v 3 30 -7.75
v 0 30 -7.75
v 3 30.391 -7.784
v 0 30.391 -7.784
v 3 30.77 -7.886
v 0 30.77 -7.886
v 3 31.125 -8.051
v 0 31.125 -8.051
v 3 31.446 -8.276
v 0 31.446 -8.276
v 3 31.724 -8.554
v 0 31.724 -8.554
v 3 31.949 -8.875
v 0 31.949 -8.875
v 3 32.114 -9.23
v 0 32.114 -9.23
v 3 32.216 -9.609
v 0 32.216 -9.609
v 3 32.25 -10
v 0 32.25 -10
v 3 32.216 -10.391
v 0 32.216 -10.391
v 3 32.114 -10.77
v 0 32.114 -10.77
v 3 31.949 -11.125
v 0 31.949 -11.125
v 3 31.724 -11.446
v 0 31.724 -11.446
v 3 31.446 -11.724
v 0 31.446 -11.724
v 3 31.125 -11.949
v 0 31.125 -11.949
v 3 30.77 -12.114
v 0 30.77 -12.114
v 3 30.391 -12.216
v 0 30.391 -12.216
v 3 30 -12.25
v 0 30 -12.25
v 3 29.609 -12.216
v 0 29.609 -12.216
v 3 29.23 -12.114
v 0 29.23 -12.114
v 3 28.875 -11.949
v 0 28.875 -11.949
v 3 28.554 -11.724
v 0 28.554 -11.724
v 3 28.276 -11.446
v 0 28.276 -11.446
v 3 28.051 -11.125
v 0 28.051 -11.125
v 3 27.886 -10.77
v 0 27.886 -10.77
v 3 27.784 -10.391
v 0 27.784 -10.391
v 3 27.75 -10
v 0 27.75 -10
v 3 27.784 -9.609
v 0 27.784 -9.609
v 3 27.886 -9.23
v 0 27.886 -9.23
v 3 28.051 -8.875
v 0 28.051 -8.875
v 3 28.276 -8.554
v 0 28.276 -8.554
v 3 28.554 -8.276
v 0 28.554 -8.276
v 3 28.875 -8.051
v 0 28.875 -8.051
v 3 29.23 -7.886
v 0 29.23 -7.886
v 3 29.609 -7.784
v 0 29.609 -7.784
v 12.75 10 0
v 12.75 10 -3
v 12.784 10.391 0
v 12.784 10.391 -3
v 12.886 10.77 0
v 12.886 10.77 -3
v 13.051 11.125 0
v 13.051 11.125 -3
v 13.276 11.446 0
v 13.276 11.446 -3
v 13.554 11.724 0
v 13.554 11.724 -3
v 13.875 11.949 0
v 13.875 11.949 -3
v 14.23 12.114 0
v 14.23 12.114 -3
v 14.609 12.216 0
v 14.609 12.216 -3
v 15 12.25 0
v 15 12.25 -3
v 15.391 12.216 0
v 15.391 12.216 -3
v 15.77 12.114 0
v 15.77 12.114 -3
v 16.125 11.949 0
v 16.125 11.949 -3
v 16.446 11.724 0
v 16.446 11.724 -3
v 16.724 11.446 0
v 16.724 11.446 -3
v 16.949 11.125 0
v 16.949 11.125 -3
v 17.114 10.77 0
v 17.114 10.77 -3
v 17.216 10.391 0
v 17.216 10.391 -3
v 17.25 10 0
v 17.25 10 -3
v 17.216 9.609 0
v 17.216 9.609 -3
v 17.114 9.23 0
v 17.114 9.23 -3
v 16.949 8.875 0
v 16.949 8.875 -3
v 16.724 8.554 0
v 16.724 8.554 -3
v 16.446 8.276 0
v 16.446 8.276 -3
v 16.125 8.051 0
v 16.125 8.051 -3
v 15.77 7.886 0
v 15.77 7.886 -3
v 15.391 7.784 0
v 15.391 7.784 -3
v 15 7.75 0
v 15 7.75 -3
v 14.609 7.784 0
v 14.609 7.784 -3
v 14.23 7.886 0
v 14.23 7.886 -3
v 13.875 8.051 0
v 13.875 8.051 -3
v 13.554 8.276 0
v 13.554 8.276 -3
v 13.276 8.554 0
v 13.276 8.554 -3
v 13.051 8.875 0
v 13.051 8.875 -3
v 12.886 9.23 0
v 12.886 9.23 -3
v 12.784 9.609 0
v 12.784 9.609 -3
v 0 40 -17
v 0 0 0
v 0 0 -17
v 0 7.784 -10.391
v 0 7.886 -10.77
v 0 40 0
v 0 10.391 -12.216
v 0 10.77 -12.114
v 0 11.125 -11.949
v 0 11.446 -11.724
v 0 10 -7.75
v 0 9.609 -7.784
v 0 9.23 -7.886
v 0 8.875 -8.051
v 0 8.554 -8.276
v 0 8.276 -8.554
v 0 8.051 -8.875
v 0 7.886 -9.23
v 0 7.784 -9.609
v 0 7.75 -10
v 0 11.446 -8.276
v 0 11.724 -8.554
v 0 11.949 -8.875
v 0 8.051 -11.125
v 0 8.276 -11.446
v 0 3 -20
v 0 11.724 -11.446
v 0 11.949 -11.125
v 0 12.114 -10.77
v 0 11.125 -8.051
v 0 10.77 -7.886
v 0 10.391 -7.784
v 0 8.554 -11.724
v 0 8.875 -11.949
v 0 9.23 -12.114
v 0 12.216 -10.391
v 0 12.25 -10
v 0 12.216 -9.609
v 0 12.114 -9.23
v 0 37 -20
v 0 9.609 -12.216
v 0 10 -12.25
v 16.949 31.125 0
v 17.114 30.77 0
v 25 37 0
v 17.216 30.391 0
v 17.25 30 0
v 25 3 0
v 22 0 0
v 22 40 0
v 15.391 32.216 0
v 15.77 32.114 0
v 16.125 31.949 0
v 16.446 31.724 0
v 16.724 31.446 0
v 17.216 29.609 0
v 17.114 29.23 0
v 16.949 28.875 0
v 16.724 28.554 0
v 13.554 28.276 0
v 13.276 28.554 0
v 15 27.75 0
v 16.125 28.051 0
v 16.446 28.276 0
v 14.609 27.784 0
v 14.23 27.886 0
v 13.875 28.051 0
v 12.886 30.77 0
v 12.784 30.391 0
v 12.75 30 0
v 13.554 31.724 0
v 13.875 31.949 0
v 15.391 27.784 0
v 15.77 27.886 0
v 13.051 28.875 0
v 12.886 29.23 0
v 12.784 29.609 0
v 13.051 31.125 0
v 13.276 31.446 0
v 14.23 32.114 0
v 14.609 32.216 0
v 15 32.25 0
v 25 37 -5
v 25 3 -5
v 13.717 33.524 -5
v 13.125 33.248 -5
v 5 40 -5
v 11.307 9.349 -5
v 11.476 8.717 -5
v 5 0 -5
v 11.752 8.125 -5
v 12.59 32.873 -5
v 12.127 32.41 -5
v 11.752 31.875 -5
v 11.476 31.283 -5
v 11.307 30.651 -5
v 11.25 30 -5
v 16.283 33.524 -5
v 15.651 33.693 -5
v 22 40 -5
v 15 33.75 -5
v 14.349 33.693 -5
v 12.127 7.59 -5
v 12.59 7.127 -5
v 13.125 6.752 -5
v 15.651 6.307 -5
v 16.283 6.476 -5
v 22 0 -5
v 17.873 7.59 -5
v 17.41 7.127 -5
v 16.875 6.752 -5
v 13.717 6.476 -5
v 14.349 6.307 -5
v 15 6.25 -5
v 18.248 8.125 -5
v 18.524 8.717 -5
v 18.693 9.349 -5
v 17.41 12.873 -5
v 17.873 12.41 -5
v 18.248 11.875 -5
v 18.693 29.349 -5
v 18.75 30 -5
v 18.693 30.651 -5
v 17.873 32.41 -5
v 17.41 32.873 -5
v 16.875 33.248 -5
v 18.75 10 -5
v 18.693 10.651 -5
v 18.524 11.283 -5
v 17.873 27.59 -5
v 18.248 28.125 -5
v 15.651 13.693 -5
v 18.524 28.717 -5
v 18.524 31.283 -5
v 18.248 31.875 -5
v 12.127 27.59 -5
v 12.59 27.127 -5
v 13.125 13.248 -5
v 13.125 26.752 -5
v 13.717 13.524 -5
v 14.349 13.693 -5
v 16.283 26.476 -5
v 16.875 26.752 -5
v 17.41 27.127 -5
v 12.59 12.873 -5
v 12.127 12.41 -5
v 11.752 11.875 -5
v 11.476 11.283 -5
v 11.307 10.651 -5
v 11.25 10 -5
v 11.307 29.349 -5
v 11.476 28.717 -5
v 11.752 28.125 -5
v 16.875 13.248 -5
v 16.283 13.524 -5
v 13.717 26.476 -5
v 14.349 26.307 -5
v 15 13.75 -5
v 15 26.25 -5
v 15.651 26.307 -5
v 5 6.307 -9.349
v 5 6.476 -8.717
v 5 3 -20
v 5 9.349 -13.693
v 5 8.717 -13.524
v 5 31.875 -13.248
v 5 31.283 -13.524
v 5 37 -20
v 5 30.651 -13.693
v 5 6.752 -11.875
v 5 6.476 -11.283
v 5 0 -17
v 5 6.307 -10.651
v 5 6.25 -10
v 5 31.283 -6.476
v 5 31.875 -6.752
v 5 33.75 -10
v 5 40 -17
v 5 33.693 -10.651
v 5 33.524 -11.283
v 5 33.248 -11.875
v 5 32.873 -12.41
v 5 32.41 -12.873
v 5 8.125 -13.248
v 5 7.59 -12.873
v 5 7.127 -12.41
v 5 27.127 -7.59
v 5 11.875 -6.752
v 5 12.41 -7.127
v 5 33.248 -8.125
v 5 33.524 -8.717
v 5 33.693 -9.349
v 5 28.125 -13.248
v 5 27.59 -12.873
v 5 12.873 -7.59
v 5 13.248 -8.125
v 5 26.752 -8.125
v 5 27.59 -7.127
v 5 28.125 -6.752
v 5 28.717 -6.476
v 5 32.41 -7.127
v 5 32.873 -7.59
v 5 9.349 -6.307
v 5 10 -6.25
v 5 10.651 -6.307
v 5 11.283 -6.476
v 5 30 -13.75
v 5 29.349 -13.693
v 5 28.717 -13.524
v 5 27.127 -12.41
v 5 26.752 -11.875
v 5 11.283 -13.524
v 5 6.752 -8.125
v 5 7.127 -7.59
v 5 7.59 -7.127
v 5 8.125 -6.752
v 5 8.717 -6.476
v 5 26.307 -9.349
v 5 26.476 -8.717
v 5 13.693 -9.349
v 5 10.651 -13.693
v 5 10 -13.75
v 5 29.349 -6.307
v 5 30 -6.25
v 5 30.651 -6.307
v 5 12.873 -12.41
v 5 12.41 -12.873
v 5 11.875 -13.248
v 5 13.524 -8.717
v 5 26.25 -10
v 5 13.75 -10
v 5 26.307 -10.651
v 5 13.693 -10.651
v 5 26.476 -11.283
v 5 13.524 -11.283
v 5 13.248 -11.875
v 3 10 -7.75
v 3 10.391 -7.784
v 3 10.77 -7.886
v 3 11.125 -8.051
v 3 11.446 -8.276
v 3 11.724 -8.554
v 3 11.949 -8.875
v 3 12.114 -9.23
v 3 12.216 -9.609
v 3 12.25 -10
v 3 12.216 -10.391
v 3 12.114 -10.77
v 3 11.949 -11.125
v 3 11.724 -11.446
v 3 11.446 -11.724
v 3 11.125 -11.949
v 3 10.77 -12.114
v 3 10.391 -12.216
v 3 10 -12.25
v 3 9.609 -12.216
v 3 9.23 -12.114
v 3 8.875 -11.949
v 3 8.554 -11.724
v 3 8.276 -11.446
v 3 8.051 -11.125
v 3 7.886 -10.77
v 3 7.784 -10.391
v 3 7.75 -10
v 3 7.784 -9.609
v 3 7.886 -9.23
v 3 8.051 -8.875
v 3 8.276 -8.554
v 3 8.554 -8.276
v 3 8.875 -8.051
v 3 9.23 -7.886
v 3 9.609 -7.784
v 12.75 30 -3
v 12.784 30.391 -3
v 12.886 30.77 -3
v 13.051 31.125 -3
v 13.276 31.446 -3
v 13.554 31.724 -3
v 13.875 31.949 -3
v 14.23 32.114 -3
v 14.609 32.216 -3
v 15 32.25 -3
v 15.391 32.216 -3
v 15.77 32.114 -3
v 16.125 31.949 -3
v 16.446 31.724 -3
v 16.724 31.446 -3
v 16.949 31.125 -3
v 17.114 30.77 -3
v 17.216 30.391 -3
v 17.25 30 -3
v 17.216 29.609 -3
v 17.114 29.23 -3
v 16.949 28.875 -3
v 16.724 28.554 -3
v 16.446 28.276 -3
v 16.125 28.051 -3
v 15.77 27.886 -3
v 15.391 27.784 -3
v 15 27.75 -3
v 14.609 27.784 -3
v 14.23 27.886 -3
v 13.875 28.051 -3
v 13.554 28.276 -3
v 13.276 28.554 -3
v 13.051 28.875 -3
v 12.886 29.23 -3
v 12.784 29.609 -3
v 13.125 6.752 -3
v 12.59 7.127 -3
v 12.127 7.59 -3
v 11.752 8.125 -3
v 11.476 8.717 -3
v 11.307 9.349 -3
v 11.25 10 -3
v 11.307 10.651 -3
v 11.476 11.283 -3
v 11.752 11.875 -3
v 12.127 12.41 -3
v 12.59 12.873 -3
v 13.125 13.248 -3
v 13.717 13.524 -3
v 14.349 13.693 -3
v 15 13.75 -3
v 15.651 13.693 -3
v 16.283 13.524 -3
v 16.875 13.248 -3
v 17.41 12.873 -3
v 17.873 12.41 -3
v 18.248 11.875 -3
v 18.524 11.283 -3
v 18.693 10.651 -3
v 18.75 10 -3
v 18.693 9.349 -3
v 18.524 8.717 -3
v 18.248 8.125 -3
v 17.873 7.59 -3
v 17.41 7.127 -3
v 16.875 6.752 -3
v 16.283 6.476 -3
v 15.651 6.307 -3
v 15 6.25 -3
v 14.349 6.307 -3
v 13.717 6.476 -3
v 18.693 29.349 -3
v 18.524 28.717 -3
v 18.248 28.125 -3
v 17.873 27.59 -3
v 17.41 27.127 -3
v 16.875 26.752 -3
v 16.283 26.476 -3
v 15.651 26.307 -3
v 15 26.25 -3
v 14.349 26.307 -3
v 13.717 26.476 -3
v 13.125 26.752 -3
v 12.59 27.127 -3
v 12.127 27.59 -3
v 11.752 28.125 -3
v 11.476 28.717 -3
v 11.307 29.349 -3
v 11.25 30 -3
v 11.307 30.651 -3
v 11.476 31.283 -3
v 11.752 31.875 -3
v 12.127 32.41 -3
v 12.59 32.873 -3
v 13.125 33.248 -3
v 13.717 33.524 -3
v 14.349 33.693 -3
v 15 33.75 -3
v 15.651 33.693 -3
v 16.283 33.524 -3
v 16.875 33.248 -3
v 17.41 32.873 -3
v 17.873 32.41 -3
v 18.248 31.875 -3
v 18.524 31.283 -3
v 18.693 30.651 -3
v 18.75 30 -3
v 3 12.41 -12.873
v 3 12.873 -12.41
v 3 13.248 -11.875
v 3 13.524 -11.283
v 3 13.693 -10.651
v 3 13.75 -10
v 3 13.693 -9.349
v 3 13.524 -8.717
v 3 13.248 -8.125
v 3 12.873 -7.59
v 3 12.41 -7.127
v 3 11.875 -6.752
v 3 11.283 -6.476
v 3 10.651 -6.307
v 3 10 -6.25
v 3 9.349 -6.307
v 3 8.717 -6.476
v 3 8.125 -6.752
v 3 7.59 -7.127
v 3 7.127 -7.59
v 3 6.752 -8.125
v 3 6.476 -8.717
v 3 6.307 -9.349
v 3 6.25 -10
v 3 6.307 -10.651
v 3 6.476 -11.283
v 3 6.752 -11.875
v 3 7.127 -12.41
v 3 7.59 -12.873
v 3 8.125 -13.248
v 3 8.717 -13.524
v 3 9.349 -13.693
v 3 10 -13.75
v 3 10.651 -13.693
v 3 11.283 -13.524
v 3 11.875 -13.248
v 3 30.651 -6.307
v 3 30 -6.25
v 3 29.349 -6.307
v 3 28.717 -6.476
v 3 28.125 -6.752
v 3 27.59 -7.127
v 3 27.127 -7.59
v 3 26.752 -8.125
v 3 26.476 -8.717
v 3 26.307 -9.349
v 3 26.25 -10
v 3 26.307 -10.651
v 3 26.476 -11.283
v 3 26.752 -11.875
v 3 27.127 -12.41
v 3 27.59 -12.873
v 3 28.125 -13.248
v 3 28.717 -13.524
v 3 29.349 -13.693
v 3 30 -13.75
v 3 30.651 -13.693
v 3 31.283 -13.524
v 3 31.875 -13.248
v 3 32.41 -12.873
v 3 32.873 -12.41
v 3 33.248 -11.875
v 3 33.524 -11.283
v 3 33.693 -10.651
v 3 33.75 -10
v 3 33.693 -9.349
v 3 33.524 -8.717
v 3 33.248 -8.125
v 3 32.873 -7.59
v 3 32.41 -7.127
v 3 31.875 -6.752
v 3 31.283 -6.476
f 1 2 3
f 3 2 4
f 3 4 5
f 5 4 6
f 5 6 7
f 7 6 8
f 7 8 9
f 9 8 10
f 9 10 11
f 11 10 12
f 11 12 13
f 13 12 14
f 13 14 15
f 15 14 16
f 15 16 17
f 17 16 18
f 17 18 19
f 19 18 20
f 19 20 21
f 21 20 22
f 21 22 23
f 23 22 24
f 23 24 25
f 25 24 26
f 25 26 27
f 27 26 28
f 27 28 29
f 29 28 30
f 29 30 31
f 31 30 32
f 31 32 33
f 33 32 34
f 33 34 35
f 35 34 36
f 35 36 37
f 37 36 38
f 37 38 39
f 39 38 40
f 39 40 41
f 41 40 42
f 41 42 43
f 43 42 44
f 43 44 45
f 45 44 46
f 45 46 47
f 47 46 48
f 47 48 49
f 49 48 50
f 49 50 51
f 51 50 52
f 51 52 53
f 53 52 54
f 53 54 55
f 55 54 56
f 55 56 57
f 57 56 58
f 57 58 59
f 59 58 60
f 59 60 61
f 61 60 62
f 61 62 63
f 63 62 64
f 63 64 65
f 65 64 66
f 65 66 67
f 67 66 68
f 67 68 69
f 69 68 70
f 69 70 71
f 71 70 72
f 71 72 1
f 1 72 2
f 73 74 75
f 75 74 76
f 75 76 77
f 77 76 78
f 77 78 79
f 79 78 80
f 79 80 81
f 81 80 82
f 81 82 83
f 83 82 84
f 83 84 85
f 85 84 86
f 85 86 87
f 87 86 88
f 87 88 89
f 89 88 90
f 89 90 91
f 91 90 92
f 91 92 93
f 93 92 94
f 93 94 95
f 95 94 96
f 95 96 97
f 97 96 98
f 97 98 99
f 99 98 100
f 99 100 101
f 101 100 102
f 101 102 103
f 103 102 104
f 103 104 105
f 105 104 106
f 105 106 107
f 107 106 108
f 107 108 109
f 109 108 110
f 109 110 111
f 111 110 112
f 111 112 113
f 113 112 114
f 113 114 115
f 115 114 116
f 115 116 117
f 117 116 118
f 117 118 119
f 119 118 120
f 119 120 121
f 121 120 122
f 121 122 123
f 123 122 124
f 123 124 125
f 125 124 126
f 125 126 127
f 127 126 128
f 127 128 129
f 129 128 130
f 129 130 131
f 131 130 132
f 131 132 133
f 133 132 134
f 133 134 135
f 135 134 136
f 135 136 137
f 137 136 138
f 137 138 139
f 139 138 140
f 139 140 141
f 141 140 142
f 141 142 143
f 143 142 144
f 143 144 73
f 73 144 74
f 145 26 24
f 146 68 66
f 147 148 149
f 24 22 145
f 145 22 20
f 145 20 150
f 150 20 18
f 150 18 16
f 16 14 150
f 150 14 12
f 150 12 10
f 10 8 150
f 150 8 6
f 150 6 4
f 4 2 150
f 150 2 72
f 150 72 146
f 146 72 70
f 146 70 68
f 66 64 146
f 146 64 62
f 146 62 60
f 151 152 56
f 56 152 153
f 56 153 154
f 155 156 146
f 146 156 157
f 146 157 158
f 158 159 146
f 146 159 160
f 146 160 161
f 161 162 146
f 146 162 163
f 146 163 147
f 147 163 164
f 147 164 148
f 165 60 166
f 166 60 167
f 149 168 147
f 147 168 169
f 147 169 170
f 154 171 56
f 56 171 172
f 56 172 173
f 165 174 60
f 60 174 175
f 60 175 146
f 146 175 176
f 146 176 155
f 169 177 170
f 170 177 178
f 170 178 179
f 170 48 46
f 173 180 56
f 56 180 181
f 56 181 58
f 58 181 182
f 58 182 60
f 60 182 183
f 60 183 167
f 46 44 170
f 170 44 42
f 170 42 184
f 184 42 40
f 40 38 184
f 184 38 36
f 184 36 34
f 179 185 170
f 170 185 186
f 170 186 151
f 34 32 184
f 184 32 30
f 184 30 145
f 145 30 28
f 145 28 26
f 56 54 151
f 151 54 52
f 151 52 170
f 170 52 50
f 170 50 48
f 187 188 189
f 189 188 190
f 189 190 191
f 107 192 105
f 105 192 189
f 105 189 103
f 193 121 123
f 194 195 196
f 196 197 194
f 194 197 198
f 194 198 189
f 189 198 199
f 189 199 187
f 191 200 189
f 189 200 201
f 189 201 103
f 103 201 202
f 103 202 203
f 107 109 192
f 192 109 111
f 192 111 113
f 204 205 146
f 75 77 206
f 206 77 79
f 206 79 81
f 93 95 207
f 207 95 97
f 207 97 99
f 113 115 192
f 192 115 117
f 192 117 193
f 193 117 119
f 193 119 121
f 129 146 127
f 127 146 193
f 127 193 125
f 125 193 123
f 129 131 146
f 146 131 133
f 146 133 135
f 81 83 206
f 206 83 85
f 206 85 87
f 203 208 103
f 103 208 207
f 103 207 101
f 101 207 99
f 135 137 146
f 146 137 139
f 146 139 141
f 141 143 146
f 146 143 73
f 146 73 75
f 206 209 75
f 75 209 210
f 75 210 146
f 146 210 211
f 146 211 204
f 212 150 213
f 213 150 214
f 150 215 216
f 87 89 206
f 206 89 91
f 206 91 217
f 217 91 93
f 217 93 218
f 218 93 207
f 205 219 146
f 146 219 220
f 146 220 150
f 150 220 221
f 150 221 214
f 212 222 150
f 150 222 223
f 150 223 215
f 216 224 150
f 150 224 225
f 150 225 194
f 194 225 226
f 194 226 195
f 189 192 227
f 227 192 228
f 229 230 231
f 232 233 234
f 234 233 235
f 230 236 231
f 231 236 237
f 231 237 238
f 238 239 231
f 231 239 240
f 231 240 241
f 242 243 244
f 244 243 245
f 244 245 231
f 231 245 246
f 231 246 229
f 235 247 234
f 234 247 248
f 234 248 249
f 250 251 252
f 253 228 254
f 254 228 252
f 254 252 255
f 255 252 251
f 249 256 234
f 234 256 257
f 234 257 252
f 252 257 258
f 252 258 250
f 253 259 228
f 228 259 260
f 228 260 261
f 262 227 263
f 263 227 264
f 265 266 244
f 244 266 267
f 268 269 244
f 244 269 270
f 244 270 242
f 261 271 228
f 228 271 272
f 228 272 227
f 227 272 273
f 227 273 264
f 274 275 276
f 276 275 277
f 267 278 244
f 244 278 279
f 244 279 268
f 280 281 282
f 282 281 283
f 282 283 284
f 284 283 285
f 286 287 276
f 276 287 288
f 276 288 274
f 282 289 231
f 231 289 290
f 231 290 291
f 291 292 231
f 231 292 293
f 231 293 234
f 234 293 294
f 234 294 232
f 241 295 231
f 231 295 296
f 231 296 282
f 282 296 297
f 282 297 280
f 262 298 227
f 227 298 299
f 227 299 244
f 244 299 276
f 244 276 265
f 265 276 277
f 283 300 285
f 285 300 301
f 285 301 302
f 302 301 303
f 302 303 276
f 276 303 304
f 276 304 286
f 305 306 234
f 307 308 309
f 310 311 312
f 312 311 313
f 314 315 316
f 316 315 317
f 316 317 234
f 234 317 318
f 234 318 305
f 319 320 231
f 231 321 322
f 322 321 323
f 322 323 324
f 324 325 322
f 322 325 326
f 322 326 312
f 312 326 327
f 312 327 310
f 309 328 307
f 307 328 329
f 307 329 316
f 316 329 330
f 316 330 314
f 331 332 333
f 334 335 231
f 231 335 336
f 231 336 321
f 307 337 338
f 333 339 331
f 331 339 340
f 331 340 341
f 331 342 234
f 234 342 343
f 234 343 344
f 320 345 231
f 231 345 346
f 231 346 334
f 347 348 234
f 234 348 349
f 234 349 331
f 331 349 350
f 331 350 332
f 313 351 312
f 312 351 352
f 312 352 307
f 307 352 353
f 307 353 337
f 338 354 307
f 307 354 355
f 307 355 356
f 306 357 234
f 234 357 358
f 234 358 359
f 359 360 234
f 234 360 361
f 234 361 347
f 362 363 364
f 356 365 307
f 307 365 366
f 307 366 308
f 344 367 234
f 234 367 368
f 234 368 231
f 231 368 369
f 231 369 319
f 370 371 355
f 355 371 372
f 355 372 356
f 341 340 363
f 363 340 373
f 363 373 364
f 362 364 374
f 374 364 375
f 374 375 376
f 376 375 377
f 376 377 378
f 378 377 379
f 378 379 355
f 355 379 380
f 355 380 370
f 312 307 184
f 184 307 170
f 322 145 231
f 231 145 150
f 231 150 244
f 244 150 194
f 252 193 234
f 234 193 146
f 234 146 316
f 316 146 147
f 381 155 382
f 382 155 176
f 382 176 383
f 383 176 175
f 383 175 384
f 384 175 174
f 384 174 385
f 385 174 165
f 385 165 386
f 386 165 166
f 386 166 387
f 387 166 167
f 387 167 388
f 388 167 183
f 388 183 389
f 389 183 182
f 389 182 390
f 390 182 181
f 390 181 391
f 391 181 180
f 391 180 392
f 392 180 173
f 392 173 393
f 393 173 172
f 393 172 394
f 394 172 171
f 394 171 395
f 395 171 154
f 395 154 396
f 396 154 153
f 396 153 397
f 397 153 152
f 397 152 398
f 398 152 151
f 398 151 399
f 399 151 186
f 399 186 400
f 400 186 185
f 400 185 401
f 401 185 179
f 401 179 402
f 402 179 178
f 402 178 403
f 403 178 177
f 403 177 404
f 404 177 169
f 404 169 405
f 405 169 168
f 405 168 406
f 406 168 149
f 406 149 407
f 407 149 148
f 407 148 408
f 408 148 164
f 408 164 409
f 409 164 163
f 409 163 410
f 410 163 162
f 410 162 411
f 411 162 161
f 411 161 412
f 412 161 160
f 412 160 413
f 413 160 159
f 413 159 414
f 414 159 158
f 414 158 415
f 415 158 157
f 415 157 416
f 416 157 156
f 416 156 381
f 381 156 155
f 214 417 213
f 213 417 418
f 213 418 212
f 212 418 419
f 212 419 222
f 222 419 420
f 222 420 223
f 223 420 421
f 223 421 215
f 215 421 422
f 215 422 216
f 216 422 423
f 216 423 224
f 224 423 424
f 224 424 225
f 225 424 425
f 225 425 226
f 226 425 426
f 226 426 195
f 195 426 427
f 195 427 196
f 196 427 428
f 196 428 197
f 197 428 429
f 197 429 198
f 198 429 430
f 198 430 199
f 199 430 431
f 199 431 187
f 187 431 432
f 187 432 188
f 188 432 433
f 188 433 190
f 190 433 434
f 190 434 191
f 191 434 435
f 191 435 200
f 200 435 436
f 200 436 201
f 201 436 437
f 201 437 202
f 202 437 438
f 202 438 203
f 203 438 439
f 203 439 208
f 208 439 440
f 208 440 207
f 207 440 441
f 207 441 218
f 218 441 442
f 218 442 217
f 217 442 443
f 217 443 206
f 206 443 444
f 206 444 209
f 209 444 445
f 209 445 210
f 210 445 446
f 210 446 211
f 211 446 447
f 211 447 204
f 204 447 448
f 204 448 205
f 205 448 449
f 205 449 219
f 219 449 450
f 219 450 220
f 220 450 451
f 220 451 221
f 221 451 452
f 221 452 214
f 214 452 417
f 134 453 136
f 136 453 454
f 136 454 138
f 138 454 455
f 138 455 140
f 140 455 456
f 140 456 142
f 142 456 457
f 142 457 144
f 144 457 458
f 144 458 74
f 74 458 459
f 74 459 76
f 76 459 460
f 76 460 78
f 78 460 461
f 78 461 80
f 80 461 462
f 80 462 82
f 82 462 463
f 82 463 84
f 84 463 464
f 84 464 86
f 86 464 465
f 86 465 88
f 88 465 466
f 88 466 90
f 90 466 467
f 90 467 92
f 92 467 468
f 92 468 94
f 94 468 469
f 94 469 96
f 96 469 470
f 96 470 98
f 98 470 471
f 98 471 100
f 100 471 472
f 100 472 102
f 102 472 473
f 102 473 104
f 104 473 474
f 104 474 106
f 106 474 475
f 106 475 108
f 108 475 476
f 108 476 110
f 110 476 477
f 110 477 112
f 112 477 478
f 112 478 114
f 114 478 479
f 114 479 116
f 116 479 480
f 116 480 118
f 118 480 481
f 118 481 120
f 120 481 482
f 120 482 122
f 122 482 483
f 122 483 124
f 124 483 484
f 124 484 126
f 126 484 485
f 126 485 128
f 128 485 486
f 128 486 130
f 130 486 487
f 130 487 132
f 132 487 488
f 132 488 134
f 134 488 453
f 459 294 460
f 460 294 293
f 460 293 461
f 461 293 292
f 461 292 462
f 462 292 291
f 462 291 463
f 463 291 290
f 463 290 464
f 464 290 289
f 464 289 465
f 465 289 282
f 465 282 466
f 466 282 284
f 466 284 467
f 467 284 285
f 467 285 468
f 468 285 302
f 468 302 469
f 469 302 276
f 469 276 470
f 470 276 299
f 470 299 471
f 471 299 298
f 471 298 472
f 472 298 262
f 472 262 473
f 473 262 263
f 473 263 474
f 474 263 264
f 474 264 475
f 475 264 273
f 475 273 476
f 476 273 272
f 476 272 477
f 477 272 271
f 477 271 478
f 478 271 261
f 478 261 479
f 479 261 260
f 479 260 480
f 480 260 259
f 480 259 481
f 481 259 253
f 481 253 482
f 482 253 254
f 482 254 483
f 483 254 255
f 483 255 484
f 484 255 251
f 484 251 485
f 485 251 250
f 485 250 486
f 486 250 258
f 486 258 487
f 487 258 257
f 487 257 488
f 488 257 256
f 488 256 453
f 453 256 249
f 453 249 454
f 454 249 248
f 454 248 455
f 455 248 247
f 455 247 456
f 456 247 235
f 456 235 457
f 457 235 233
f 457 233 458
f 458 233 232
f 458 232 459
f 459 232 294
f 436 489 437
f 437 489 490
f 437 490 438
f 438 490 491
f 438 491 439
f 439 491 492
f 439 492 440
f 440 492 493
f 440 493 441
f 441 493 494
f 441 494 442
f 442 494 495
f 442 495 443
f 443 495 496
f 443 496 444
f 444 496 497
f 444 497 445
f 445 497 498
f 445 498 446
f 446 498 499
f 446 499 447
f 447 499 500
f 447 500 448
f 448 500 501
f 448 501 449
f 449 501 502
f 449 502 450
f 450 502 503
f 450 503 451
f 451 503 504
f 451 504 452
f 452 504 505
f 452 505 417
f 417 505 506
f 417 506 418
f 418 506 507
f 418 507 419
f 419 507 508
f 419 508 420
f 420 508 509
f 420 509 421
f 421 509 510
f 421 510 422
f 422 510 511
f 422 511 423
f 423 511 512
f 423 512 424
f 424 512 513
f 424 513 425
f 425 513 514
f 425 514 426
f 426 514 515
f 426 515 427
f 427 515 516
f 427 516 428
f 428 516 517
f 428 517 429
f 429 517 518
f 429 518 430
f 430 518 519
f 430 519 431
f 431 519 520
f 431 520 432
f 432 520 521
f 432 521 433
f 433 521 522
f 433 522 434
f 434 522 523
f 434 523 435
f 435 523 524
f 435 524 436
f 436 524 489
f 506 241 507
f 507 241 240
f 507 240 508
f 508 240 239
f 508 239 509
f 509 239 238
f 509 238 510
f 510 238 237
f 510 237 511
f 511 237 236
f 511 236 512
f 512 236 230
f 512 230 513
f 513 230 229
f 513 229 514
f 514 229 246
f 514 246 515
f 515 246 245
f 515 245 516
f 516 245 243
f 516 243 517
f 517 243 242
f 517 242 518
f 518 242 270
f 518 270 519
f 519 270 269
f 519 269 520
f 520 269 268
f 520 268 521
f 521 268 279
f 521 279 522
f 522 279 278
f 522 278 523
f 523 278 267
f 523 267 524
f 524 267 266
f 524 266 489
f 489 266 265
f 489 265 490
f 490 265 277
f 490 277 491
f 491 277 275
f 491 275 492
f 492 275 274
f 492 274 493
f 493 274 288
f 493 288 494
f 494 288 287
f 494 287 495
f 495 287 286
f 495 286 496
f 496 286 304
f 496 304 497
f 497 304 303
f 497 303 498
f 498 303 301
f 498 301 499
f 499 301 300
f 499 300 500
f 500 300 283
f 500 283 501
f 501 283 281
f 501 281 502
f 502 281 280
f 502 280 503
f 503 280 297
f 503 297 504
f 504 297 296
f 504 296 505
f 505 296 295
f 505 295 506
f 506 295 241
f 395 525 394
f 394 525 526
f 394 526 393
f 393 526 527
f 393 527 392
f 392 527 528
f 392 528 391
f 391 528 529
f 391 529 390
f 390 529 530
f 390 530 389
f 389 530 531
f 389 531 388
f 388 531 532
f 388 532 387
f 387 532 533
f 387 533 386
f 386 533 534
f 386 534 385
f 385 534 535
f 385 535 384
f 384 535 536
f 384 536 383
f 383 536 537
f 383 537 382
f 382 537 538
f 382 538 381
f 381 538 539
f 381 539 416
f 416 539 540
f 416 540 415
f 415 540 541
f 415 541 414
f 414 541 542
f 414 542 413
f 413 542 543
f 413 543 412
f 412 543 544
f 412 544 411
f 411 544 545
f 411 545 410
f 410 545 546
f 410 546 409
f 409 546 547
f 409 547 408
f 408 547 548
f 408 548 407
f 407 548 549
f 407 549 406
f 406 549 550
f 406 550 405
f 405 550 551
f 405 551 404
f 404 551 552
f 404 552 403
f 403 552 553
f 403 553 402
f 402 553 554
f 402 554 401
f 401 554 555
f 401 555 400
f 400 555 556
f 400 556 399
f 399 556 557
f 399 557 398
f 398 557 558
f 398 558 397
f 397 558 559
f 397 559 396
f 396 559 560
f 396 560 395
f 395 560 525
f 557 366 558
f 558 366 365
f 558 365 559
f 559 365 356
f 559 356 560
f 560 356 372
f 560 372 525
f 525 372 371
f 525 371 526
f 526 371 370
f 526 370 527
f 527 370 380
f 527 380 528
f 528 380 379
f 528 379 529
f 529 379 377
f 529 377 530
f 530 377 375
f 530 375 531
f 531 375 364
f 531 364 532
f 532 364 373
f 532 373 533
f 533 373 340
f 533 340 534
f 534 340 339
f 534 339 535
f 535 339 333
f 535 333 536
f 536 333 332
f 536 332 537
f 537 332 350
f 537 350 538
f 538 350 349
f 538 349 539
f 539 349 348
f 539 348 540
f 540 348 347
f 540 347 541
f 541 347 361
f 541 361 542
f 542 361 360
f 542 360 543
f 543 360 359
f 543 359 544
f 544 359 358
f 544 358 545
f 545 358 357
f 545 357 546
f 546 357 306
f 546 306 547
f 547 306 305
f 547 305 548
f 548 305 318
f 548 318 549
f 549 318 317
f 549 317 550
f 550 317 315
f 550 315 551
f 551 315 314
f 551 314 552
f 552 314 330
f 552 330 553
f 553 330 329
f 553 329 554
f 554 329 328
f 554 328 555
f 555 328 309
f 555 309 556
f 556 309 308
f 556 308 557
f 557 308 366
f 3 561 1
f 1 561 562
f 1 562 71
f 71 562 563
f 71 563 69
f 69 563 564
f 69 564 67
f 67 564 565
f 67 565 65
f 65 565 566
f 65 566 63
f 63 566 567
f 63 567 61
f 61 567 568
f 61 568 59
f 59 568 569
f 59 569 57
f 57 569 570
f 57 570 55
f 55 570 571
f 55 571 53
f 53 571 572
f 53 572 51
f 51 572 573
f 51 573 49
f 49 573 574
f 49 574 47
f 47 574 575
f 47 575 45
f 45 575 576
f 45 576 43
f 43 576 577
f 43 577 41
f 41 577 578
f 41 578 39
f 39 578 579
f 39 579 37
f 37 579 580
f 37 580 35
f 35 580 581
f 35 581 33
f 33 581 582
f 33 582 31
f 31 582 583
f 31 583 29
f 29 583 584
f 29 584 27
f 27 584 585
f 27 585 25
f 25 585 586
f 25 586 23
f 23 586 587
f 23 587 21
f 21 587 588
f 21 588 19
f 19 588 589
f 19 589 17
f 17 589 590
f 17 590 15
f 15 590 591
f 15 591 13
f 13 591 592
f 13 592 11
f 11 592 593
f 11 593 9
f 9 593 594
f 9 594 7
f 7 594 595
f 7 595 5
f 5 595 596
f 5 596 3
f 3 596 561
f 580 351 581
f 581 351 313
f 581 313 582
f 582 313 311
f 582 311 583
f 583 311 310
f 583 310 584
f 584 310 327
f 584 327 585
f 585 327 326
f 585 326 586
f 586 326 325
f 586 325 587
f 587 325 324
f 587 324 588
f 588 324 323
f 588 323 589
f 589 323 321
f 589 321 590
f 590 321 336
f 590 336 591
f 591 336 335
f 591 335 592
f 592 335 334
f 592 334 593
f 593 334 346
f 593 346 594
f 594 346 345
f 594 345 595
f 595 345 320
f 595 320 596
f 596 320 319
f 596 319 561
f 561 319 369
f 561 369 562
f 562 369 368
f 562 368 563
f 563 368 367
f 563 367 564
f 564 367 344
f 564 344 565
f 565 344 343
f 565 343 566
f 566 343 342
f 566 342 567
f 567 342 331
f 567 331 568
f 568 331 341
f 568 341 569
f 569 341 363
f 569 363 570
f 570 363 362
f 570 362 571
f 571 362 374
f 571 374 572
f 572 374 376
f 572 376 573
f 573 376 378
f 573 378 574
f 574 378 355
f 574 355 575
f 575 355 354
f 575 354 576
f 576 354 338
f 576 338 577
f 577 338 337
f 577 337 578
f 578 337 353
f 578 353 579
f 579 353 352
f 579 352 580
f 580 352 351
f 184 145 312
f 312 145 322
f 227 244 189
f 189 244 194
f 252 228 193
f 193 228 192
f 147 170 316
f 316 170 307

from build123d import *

# Parameters (mm, degrees)
BOSS_EXTRUDE1_DEPTH = 40
CUT_EXTRUDE1_REACH  = 27
SKETCH2_R           = 2.25
CUT_EXTRUDE2_REACH  = 7
SKETCH3_R           = 2.25
SKETCH4_R           = 3.75
CUT_EXTRUDE3_DEPTH  = 2
SKETCH5_R           = 3.75
CUT_EXTRUDE4_DEPTH  = 2
CHAMFER1_SIZE       = 3


with BuildPart() as part:
    # Sketch1 → Boss-Extrude1 (new body)
    with BuildSketch(Plane(origin=(0, 0, 0), x_dir=(1, 0, 0), z_dir=(0, 1, 0))):
        Polygon((0, 0), (25, 0), (25, 5), (5, 5), (5, 20), (0, 20), align=None)
    extrude(amount=BOSS_EXTRUDE1_DEPTH)

    # Sketch2 → Cut-Extrude1 (cut, up to next)
    with BuildSketch(Plane.ZY, mode=Mode.PRIVATE) as cut_extrude1_sk1:
        with Locations((-10, 10)):
            Circle(SKETCH2_R)
    cut_extrude1_tool1 = extrude(cut_extrude1_sk1.sketch, amount=-CUT_EXTRUDE1_REACH, mode=Mode.PRIVATE) & part.part
    add(cut_extrude1_tool1.solids().sort_by_distance((0, 10, -10))[0], mode=Mode.SUBTRACT)
    # Sketch2 → Cut-Extrude1 (cut, up to next)
    with BuildSketch(Plane.ZY, mode=Mode.PRIVATE) as cut_extrude1_sk2:
        with Locations((-10, 30)):
            Circle(SKETCH2_R)
    cut_extrude1_tool2 = extrude(cut_extrude1_sk2.sketch, amount=-CUT_EXTRUDE1_REACH, mode=Mode.PRIVATE) & part.part
    add(cut_extrude1_tool2.solids().sort_by_distance((0, 30, -10))[0], mode=Mode.SUBTRACT)

    # Sketch3 → Cut-Extrude2 (cut, up to next)
    with BuildSketch(Plane(origin=(0, 0, -5), x_dir=(-1, 0, 0), z_dir=(0, 0, -1)), mode=Mode.PRIVATE) as cut_extrude2_sk1:
        with Locations((-15, 10)):
            Circle(SKETCH3_R)
    cut_extrude2_tool1 = extrude(cut_extrude2_sk1.sketch, amount=-CUT_EXTRUDE2_REACH, mode=Mode.PRIVATE) & part.part
    add(cut_extrude2_tool1.solids().sort_by_distance((15, 10, -5))[0], mode=Mode.SUBTRACT)
    # Sketch3 → Cut-Extrude2 (cut, up to next)
    with BuildSketch(Plane(origin=(0, 0, -5), x_dir=(-1, 0, 0), z_dir=(0, 0, -1)), mode=Mode.PRIVATE) as cut_extrude2_sk2:
        with Locations((-15, 30)):
            Circle(SKETCH3_R)
    cut_extrude2_tool2 = extrude(cut_extrude2_sk2.sketch, amount=-CUT_EXTRUDE2_REACH, mode=Mode.PRIVATE) & part.part
    add(cut_extrude2_tool2.solids().sort_by_distance((15, 30, -5))[0], mode=Mode.SUBTRACT)

    # Sketch4 → Cut-Extrude3 (cut)
    with BuildSketch(Plane(origin=(0, 0, -5), x_dir=(-1, 0, 0), z_dir=(0, 0, -1))):
        with Locations((-15, 10)):
            Circle(SKETCH4_R)
        with Locations((-15, 30)):
            Circle(SKETCH4_R)
    extrude(amount=-CUT_EXTRUDE3_DEPTH, mode=Mode.SUBTRACT)

    # Sketch5 → Cut-Extrude4 (cut)
    with BuildSketch(Plane(origin=(5, 0, 0), x_dir=(0, 0, -1), z_dir=(1, 0, 0))):
        with Locations((10, 30)):
            Circle(SKETCH5_R)
        with Locations((10, 10)):
            Circle(SKETCH5_R)
    extrude(amount=-CUT_EXTRUDE4_DEPTH, mode=Mode.SUBTRACT)

    # Chamfer1
    chamfer1_edges = [part.edges().sort_by_distance(p)[0] for p in [
        (25, 40, -2.5),
        (2.5, 40, -20),
        (2.5, 0, -20),
        (25, 0, -2.5),
    ]]
    chamfer(chamfer1_edges, length=CHAMFER1_SIZE)


solid = part.part
